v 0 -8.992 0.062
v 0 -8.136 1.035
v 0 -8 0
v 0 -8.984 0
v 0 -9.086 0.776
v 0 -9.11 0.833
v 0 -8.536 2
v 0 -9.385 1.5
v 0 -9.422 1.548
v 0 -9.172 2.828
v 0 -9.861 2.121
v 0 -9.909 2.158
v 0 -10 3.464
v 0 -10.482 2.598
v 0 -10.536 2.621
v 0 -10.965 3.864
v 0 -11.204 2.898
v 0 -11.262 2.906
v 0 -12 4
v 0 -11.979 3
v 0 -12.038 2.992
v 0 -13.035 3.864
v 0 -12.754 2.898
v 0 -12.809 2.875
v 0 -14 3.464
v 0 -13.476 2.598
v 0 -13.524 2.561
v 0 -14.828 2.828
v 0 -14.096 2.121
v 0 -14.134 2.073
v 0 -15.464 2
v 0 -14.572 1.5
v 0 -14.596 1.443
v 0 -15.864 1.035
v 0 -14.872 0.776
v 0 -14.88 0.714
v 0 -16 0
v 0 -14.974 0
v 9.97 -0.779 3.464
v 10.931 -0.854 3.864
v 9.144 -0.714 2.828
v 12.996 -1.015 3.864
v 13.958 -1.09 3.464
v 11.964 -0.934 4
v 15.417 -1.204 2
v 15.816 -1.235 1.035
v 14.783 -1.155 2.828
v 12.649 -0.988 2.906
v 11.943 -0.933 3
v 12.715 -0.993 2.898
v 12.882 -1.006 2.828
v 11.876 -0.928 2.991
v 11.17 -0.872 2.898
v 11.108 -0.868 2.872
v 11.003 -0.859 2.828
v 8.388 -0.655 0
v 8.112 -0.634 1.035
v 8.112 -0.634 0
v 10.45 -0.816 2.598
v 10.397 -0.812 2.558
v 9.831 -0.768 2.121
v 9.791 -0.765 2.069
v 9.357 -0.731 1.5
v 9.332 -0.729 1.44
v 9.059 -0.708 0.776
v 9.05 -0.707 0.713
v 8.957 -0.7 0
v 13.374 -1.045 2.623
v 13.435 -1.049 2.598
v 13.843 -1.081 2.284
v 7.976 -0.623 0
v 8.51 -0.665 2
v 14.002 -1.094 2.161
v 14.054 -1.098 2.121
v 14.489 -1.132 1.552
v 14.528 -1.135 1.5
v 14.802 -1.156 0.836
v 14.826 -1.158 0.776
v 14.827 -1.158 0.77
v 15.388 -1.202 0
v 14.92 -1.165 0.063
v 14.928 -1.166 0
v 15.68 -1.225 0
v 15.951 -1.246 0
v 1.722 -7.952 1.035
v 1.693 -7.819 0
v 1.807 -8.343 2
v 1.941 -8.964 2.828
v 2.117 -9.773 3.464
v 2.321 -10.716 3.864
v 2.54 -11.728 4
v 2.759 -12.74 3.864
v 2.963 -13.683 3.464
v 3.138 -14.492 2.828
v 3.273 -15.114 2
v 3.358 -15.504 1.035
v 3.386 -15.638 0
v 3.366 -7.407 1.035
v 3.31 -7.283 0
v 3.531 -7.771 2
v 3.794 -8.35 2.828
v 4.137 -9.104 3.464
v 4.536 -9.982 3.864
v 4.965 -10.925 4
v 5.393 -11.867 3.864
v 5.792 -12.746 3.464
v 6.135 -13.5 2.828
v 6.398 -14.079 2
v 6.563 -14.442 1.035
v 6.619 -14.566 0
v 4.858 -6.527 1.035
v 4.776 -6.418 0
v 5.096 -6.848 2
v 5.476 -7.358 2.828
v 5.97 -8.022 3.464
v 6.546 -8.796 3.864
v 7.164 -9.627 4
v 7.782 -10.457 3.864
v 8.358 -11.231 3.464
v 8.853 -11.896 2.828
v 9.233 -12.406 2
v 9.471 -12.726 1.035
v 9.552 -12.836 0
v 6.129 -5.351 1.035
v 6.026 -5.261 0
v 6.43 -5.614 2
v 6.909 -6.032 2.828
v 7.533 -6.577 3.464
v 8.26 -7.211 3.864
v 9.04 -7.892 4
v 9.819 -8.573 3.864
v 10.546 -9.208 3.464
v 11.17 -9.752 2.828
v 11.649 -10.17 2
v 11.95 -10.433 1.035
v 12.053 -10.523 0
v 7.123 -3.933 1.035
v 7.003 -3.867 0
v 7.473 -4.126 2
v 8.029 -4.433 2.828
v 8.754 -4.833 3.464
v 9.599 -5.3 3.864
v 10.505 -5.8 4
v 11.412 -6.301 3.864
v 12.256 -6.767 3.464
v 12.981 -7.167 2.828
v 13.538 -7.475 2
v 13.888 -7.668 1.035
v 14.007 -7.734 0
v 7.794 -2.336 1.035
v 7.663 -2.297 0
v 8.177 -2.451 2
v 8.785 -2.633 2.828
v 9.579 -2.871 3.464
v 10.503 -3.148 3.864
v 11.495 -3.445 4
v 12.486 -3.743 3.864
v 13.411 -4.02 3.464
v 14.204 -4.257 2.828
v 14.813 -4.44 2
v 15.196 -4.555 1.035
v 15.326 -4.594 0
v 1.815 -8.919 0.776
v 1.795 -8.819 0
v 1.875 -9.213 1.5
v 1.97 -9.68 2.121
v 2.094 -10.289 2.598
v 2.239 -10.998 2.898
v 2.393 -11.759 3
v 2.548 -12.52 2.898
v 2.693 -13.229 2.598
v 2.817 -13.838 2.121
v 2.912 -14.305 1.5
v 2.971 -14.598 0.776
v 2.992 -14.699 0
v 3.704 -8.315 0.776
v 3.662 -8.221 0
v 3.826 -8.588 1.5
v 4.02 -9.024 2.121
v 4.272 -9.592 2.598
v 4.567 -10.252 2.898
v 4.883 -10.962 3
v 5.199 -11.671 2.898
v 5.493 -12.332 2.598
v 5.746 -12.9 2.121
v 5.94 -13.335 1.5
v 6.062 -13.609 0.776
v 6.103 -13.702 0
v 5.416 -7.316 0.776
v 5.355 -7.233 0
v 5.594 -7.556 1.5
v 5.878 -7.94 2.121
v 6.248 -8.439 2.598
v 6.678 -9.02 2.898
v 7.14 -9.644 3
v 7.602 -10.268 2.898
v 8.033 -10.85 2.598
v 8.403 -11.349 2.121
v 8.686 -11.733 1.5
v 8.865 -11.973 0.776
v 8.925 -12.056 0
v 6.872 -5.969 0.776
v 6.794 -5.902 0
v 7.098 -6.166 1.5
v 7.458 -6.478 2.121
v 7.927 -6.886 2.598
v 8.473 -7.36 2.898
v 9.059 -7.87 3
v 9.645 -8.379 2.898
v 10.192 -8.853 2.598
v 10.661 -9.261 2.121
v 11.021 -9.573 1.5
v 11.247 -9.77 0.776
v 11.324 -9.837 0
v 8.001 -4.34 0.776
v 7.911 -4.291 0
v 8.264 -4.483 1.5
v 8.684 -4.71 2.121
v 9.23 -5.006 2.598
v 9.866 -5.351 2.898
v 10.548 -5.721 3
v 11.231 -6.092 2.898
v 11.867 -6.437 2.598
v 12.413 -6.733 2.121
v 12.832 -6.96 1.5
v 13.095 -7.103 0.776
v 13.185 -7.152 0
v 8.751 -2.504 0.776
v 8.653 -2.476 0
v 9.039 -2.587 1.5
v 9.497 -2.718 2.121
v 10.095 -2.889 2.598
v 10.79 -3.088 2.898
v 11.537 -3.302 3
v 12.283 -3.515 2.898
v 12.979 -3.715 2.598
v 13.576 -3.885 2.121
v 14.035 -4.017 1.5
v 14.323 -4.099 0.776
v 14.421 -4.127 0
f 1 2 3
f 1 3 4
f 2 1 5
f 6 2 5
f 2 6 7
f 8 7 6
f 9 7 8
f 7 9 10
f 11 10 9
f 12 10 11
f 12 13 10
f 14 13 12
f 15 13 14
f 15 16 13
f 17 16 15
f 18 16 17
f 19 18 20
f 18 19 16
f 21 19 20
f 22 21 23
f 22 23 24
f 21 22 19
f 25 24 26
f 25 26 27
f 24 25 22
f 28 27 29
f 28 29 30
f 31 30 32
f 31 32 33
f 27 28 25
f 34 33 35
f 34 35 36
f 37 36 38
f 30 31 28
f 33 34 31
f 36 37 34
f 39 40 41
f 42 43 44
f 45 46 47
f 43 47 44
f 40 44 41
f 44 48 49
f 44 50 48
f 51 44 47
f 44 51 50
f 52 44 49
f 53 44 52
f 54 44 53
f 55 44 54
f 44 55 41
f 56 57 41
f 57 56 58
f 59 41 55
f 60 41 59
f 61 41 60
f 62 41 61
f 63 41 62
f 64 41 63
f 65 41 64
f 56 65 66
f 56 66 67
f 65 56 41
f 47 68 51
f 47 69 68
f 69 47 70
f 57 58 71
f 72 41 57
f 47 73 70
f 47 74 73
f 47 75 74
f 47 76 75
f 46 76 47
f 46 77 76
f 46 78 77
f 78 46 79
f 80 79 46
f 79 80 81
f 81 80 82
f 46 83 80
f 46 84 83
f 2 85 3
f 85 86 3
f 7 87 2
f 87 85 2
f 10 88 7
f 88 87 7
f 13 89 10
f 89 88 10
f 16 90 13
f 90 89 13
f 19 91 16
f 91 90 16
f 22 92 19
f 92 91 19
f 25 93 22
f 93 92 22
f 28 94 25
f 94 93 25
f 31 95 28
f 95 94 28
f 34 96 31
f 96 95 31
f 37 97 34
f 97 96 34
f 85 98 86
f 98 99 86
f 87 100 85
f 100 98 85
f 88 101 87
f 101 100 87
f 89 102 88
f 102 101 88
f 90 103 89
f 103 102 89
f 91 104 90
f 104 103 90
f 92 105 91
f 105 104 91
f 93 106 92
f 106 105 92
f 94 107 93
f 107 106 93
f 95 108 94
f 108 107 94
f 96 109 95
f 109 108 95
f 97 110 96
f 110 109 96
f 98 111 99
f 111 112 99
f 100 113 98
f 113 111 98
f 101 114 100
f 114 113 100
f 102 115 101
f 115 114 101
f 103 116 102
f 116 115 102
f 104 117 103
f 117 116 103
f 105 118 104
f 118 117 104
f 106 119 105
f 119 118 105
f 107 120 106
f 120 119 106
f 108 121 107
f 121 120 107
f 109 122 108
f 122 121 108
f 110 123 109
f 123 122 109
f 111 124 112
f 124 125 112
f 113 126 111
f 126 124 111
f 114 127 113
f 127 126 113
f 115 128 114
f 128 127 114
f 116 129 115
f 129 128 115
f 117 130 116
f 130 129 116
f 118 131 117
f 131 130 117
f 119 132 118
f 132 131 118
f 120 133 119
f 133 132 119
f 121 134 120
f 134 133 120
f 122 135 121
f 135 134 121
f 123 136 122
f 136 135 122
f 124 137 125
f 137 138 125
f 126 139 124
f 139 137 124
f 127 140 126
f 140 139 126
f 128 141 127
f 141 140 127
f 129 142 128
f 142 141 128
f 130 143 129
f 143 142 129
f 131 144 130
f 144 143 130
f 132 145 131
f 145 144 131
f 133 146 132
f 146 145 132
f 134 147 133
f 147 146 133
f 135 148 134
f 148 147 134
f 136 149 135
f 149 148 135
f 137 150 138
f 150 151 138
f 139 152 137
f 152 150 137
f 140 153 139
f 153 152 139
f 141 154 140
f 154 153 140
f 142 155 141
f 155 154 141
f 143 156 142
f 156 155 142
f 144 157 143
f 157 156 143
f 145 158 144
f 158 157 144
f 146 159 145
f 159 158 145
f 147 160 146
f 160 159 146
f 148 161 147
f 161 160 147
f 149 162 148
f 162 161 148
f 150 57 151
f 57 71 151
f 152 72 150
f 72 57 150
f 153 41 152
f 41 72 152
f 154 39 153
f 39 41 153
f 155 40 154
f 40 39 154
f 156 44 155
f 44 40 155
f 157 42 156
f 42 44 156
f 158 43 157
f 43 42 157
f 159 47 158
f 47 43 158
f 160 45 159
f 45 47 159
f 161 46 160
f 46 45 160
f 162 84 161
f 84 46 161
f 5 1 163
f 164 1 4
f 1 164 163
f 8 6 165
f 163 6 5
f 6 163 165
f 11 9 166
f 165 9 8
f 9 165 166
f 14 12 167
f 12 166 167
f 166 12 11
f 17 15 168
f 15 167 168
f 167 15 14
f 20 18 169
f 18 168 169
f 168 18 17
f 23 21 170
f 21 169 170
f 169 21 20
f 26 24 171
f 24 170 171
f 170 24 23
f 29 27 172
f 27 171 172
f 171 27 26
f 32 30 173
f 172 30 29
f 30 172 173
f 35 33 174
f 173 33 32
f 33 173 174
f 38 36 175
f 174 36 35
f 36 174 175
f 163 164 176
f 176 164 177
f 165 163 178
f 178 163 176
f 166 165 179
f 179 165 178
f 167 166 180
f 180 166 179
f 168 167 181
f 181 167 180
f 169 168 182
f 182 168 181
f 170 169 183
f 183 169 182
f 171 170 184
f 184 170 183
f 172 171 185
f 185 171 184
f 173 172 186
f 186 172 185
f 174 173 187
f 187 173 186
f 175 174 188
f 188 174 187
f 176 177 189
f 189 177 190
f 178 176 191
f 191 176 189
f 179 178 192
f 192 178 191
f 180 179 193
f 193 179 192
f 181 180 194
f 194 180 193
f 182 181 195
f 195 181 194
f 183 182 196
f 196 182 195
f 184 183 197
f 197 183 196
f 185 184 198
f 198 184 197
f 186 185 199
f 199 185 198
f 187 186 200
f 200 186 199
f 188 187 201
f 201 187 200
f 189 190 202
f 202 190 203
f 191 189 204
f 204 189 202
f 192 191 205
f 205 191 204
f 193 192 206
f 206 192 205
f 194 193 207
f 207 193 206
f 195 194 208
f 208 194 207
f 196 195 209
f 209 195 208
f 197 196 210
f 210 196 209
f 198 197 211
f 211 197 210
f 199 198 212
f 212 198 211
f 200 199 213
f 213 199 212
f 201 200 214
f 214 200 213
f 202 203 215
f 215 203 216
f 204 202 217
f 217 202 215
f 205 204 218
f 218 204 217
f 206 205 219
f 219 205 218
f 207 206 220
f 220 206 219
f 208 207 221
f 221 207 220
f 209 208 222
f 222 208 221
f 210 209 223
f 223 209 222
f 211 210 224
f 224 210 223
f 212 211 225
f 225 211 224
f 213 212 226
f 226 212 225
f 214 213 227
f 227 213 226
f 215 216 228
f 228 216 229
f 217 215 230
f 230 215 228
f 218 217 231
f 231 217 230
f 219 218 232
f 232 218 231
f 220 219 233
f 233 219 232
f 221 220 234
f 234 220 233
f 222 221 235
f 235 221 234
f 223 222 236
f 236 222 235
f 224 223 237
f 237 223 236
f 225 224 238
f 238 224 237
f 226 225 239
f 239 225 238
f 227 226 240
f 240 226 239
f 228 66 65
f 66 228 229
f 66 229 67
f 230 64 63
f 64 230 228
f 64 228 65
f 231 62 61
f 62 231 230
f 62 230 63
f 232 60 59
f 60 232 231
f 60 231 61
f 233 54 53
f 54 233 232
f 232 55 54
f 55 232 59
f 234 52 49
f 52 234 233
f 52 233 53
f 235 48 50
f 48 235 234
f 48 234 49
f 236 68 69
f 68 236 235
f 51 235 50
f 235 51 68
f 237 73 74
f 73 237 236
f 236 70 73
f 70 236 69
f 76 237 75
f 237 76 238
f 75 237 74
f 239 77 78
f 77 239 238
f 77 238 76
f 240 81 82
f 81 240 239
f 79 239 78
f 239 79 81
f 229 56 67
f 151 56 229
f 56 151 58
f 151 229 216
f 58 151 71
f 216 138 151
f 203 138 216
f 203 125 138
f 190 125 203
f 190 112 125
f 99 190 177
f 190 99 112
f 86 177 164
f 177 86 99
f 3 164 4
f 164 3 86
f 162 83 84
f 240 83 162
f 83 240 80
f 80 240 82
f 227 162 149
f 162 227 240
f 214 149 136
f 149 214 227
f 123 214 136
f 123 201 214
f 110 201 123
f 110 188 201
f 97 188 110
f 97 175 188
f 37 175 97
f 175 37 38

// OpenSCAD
// file: ../build_environments.scad
// build_environments.scad: modules to build level sections
//

module pool(diameter=10.0, wall_height=2.0, step_width=3.0, connections=[])
{
    difference() {
        union() {
        difference() {
            cylinder(h=0.5,r1=diameter+step_width,r2=diameter+step_width,$fn=48);
            translate([0,0,-0.1])
                cylinder(h=0.7,r1=diameter,r2=diameter,$fn=48);
        }
        difference() {
            cylinder(h=wall_height,r1=diameter+step_width+1.0,r2=diameter+step_width+1.0,$fn=48);
            translate([0,0,-0.1])
                cylinder(h=wall_height+0.2,r1=diameter+step_width,r2=diameter+step_width,$fn=48);
        }
        }
    
        for (c = connections)
        {
            rotate([0,90,0]) {
                angle = atan2(c[1],c[0]);
                rotate([-angle,0,0]) {
                    cylinder(h=diameter+5.0,r1=c[2],r2=c[2],$fn=48);
                }
            }
        }
    }
}

module straight(length=10.0, width=2.0, dy1=0.0, dy2=0.0, dz=0.0)
{
    dims = [0, 0, 0, 0, 0, (dz/length)];
    matrix = [
        [ 1, dims[0], dims[1], 0 ],
        [ dims[2], 1, dims[4], 0 ],
        [ dims[5], dims[3], 1, 0 ],
        [ 0, 0, 0, 1 ]
    ];
    multmatrix(matrix)
    difference() {
        translate([dy1,0,0])
        union() {
            rotate([0,90,0]) {
                difference() {
                    cylinder(h=(length-dy1-dy2),r1=width+1.0,r2=width+1.0,$fn=24);
                    translate([0,0,-0.1])
                        cylinder(h=(length-dy1-dy2+0.2),r1=width,r2=width,$fn=24);
                }
                difference() {
                    cylinder(h=1.0,r1=width+2.0,r2=width+2.0,$fn=24);
                    translate([0,0,-0.1])
                        cylinder(h=1.2,r1=width,r2=width,$fn=24);
                }
                translate([0,0,(length-dy1-dy2)-1.0]) {
                    difference() {
                        cylinder(h=1.0,r1=width+2.0,r2=width+2.0,$fn=24);
                        translate([0,0,-0.1])
                            cylinder(h=1.2,r1=width,r2=width,$fn=24);
                    }
                }
            }
        }
        translate([0,0,-(2*width+4.0)/2])
            cube([3*length,3*length,2*width+4.0],center=true);
    }
}

module curve(p0=[0,0], center=[0,0], dir=1, angle=0.0, width=2.0)
{
    radius = sqrt((p0[0]-center[0])*(p0[0]-center[0]) + (p0[1]-center[1])*(p0[1]-center[1]));
    if (dir == 0) {
        difference() {
            rotate([0,0,-90])
            difference() {
                rotate_extrude(angle = angle, convexity = 10, $fn=32)
                    translate([radius, 0, 0])
                        circle(r = width+1.0,$fn=24);
                rotate([0,0,-1.0])
                    rotate_extrude(angle = angle+2.0, convexity = 10, $fn=32)
                        translate([radius, 0, 0])
                            circle(r = width,$fn=24);
            }
            translate([0,0,-(2*width+4.0)/2])
                cube([5*radius,5*radius,2*width+4.0],center=true);
        }
    }
    else {
        difference() {
            rotate([0,0,90])
            difference() {
                rotate_extrude(angle = -angle, convexity = 10, $fn=32)
                    translate([radius, 0, 0])
                        circle(r = width+1.0,$fn=24);
                rotate([0,0,1.0])
                    rotate_extrude(angle = -angle-2.0, convexity = 10, $fn=32)
                        translate([radius, 0, 0])
                            circle(r = width,$fn=24);
            }
            translate([0,0,-(2*width+4.0)/2])
                cube([5*radius,5*radius,2*width+4.0],center=true);
        }
    }

}

// test pool
//pool(diameter=12.0000, wall_height=3.0000, step_width=3.0000, connections=[[0.0000,-26.0000,2.0000], [23.6074,0.0000,2.0000]]);

// test straight, slope
//straight(length=26.0000, width=2.0000, dy1=11.8322, dy2=6.7082, dz=0.0000);
//straight(length=29.1549, width=12.0000, dy1=0.0000, dy2=0.0000, dz=-15.0000);

// test curve
//curve(p0=[23.6074, 0.0000], center=[23.6074, 5.0000], dir=0, angle=60.1011, width=2.0000);
//curve(p0=[33.6426, 12.4219], center=[37.9771, 9.9295], dir=1, angle=120.4627, width=2.0000);
// main file
use <../build_environments.scad>;
curve(p0=[-56.3075, 44.8093], center=[-44.3095, 44.5896], dir=0, angle=85.5340, width=3.0000);
